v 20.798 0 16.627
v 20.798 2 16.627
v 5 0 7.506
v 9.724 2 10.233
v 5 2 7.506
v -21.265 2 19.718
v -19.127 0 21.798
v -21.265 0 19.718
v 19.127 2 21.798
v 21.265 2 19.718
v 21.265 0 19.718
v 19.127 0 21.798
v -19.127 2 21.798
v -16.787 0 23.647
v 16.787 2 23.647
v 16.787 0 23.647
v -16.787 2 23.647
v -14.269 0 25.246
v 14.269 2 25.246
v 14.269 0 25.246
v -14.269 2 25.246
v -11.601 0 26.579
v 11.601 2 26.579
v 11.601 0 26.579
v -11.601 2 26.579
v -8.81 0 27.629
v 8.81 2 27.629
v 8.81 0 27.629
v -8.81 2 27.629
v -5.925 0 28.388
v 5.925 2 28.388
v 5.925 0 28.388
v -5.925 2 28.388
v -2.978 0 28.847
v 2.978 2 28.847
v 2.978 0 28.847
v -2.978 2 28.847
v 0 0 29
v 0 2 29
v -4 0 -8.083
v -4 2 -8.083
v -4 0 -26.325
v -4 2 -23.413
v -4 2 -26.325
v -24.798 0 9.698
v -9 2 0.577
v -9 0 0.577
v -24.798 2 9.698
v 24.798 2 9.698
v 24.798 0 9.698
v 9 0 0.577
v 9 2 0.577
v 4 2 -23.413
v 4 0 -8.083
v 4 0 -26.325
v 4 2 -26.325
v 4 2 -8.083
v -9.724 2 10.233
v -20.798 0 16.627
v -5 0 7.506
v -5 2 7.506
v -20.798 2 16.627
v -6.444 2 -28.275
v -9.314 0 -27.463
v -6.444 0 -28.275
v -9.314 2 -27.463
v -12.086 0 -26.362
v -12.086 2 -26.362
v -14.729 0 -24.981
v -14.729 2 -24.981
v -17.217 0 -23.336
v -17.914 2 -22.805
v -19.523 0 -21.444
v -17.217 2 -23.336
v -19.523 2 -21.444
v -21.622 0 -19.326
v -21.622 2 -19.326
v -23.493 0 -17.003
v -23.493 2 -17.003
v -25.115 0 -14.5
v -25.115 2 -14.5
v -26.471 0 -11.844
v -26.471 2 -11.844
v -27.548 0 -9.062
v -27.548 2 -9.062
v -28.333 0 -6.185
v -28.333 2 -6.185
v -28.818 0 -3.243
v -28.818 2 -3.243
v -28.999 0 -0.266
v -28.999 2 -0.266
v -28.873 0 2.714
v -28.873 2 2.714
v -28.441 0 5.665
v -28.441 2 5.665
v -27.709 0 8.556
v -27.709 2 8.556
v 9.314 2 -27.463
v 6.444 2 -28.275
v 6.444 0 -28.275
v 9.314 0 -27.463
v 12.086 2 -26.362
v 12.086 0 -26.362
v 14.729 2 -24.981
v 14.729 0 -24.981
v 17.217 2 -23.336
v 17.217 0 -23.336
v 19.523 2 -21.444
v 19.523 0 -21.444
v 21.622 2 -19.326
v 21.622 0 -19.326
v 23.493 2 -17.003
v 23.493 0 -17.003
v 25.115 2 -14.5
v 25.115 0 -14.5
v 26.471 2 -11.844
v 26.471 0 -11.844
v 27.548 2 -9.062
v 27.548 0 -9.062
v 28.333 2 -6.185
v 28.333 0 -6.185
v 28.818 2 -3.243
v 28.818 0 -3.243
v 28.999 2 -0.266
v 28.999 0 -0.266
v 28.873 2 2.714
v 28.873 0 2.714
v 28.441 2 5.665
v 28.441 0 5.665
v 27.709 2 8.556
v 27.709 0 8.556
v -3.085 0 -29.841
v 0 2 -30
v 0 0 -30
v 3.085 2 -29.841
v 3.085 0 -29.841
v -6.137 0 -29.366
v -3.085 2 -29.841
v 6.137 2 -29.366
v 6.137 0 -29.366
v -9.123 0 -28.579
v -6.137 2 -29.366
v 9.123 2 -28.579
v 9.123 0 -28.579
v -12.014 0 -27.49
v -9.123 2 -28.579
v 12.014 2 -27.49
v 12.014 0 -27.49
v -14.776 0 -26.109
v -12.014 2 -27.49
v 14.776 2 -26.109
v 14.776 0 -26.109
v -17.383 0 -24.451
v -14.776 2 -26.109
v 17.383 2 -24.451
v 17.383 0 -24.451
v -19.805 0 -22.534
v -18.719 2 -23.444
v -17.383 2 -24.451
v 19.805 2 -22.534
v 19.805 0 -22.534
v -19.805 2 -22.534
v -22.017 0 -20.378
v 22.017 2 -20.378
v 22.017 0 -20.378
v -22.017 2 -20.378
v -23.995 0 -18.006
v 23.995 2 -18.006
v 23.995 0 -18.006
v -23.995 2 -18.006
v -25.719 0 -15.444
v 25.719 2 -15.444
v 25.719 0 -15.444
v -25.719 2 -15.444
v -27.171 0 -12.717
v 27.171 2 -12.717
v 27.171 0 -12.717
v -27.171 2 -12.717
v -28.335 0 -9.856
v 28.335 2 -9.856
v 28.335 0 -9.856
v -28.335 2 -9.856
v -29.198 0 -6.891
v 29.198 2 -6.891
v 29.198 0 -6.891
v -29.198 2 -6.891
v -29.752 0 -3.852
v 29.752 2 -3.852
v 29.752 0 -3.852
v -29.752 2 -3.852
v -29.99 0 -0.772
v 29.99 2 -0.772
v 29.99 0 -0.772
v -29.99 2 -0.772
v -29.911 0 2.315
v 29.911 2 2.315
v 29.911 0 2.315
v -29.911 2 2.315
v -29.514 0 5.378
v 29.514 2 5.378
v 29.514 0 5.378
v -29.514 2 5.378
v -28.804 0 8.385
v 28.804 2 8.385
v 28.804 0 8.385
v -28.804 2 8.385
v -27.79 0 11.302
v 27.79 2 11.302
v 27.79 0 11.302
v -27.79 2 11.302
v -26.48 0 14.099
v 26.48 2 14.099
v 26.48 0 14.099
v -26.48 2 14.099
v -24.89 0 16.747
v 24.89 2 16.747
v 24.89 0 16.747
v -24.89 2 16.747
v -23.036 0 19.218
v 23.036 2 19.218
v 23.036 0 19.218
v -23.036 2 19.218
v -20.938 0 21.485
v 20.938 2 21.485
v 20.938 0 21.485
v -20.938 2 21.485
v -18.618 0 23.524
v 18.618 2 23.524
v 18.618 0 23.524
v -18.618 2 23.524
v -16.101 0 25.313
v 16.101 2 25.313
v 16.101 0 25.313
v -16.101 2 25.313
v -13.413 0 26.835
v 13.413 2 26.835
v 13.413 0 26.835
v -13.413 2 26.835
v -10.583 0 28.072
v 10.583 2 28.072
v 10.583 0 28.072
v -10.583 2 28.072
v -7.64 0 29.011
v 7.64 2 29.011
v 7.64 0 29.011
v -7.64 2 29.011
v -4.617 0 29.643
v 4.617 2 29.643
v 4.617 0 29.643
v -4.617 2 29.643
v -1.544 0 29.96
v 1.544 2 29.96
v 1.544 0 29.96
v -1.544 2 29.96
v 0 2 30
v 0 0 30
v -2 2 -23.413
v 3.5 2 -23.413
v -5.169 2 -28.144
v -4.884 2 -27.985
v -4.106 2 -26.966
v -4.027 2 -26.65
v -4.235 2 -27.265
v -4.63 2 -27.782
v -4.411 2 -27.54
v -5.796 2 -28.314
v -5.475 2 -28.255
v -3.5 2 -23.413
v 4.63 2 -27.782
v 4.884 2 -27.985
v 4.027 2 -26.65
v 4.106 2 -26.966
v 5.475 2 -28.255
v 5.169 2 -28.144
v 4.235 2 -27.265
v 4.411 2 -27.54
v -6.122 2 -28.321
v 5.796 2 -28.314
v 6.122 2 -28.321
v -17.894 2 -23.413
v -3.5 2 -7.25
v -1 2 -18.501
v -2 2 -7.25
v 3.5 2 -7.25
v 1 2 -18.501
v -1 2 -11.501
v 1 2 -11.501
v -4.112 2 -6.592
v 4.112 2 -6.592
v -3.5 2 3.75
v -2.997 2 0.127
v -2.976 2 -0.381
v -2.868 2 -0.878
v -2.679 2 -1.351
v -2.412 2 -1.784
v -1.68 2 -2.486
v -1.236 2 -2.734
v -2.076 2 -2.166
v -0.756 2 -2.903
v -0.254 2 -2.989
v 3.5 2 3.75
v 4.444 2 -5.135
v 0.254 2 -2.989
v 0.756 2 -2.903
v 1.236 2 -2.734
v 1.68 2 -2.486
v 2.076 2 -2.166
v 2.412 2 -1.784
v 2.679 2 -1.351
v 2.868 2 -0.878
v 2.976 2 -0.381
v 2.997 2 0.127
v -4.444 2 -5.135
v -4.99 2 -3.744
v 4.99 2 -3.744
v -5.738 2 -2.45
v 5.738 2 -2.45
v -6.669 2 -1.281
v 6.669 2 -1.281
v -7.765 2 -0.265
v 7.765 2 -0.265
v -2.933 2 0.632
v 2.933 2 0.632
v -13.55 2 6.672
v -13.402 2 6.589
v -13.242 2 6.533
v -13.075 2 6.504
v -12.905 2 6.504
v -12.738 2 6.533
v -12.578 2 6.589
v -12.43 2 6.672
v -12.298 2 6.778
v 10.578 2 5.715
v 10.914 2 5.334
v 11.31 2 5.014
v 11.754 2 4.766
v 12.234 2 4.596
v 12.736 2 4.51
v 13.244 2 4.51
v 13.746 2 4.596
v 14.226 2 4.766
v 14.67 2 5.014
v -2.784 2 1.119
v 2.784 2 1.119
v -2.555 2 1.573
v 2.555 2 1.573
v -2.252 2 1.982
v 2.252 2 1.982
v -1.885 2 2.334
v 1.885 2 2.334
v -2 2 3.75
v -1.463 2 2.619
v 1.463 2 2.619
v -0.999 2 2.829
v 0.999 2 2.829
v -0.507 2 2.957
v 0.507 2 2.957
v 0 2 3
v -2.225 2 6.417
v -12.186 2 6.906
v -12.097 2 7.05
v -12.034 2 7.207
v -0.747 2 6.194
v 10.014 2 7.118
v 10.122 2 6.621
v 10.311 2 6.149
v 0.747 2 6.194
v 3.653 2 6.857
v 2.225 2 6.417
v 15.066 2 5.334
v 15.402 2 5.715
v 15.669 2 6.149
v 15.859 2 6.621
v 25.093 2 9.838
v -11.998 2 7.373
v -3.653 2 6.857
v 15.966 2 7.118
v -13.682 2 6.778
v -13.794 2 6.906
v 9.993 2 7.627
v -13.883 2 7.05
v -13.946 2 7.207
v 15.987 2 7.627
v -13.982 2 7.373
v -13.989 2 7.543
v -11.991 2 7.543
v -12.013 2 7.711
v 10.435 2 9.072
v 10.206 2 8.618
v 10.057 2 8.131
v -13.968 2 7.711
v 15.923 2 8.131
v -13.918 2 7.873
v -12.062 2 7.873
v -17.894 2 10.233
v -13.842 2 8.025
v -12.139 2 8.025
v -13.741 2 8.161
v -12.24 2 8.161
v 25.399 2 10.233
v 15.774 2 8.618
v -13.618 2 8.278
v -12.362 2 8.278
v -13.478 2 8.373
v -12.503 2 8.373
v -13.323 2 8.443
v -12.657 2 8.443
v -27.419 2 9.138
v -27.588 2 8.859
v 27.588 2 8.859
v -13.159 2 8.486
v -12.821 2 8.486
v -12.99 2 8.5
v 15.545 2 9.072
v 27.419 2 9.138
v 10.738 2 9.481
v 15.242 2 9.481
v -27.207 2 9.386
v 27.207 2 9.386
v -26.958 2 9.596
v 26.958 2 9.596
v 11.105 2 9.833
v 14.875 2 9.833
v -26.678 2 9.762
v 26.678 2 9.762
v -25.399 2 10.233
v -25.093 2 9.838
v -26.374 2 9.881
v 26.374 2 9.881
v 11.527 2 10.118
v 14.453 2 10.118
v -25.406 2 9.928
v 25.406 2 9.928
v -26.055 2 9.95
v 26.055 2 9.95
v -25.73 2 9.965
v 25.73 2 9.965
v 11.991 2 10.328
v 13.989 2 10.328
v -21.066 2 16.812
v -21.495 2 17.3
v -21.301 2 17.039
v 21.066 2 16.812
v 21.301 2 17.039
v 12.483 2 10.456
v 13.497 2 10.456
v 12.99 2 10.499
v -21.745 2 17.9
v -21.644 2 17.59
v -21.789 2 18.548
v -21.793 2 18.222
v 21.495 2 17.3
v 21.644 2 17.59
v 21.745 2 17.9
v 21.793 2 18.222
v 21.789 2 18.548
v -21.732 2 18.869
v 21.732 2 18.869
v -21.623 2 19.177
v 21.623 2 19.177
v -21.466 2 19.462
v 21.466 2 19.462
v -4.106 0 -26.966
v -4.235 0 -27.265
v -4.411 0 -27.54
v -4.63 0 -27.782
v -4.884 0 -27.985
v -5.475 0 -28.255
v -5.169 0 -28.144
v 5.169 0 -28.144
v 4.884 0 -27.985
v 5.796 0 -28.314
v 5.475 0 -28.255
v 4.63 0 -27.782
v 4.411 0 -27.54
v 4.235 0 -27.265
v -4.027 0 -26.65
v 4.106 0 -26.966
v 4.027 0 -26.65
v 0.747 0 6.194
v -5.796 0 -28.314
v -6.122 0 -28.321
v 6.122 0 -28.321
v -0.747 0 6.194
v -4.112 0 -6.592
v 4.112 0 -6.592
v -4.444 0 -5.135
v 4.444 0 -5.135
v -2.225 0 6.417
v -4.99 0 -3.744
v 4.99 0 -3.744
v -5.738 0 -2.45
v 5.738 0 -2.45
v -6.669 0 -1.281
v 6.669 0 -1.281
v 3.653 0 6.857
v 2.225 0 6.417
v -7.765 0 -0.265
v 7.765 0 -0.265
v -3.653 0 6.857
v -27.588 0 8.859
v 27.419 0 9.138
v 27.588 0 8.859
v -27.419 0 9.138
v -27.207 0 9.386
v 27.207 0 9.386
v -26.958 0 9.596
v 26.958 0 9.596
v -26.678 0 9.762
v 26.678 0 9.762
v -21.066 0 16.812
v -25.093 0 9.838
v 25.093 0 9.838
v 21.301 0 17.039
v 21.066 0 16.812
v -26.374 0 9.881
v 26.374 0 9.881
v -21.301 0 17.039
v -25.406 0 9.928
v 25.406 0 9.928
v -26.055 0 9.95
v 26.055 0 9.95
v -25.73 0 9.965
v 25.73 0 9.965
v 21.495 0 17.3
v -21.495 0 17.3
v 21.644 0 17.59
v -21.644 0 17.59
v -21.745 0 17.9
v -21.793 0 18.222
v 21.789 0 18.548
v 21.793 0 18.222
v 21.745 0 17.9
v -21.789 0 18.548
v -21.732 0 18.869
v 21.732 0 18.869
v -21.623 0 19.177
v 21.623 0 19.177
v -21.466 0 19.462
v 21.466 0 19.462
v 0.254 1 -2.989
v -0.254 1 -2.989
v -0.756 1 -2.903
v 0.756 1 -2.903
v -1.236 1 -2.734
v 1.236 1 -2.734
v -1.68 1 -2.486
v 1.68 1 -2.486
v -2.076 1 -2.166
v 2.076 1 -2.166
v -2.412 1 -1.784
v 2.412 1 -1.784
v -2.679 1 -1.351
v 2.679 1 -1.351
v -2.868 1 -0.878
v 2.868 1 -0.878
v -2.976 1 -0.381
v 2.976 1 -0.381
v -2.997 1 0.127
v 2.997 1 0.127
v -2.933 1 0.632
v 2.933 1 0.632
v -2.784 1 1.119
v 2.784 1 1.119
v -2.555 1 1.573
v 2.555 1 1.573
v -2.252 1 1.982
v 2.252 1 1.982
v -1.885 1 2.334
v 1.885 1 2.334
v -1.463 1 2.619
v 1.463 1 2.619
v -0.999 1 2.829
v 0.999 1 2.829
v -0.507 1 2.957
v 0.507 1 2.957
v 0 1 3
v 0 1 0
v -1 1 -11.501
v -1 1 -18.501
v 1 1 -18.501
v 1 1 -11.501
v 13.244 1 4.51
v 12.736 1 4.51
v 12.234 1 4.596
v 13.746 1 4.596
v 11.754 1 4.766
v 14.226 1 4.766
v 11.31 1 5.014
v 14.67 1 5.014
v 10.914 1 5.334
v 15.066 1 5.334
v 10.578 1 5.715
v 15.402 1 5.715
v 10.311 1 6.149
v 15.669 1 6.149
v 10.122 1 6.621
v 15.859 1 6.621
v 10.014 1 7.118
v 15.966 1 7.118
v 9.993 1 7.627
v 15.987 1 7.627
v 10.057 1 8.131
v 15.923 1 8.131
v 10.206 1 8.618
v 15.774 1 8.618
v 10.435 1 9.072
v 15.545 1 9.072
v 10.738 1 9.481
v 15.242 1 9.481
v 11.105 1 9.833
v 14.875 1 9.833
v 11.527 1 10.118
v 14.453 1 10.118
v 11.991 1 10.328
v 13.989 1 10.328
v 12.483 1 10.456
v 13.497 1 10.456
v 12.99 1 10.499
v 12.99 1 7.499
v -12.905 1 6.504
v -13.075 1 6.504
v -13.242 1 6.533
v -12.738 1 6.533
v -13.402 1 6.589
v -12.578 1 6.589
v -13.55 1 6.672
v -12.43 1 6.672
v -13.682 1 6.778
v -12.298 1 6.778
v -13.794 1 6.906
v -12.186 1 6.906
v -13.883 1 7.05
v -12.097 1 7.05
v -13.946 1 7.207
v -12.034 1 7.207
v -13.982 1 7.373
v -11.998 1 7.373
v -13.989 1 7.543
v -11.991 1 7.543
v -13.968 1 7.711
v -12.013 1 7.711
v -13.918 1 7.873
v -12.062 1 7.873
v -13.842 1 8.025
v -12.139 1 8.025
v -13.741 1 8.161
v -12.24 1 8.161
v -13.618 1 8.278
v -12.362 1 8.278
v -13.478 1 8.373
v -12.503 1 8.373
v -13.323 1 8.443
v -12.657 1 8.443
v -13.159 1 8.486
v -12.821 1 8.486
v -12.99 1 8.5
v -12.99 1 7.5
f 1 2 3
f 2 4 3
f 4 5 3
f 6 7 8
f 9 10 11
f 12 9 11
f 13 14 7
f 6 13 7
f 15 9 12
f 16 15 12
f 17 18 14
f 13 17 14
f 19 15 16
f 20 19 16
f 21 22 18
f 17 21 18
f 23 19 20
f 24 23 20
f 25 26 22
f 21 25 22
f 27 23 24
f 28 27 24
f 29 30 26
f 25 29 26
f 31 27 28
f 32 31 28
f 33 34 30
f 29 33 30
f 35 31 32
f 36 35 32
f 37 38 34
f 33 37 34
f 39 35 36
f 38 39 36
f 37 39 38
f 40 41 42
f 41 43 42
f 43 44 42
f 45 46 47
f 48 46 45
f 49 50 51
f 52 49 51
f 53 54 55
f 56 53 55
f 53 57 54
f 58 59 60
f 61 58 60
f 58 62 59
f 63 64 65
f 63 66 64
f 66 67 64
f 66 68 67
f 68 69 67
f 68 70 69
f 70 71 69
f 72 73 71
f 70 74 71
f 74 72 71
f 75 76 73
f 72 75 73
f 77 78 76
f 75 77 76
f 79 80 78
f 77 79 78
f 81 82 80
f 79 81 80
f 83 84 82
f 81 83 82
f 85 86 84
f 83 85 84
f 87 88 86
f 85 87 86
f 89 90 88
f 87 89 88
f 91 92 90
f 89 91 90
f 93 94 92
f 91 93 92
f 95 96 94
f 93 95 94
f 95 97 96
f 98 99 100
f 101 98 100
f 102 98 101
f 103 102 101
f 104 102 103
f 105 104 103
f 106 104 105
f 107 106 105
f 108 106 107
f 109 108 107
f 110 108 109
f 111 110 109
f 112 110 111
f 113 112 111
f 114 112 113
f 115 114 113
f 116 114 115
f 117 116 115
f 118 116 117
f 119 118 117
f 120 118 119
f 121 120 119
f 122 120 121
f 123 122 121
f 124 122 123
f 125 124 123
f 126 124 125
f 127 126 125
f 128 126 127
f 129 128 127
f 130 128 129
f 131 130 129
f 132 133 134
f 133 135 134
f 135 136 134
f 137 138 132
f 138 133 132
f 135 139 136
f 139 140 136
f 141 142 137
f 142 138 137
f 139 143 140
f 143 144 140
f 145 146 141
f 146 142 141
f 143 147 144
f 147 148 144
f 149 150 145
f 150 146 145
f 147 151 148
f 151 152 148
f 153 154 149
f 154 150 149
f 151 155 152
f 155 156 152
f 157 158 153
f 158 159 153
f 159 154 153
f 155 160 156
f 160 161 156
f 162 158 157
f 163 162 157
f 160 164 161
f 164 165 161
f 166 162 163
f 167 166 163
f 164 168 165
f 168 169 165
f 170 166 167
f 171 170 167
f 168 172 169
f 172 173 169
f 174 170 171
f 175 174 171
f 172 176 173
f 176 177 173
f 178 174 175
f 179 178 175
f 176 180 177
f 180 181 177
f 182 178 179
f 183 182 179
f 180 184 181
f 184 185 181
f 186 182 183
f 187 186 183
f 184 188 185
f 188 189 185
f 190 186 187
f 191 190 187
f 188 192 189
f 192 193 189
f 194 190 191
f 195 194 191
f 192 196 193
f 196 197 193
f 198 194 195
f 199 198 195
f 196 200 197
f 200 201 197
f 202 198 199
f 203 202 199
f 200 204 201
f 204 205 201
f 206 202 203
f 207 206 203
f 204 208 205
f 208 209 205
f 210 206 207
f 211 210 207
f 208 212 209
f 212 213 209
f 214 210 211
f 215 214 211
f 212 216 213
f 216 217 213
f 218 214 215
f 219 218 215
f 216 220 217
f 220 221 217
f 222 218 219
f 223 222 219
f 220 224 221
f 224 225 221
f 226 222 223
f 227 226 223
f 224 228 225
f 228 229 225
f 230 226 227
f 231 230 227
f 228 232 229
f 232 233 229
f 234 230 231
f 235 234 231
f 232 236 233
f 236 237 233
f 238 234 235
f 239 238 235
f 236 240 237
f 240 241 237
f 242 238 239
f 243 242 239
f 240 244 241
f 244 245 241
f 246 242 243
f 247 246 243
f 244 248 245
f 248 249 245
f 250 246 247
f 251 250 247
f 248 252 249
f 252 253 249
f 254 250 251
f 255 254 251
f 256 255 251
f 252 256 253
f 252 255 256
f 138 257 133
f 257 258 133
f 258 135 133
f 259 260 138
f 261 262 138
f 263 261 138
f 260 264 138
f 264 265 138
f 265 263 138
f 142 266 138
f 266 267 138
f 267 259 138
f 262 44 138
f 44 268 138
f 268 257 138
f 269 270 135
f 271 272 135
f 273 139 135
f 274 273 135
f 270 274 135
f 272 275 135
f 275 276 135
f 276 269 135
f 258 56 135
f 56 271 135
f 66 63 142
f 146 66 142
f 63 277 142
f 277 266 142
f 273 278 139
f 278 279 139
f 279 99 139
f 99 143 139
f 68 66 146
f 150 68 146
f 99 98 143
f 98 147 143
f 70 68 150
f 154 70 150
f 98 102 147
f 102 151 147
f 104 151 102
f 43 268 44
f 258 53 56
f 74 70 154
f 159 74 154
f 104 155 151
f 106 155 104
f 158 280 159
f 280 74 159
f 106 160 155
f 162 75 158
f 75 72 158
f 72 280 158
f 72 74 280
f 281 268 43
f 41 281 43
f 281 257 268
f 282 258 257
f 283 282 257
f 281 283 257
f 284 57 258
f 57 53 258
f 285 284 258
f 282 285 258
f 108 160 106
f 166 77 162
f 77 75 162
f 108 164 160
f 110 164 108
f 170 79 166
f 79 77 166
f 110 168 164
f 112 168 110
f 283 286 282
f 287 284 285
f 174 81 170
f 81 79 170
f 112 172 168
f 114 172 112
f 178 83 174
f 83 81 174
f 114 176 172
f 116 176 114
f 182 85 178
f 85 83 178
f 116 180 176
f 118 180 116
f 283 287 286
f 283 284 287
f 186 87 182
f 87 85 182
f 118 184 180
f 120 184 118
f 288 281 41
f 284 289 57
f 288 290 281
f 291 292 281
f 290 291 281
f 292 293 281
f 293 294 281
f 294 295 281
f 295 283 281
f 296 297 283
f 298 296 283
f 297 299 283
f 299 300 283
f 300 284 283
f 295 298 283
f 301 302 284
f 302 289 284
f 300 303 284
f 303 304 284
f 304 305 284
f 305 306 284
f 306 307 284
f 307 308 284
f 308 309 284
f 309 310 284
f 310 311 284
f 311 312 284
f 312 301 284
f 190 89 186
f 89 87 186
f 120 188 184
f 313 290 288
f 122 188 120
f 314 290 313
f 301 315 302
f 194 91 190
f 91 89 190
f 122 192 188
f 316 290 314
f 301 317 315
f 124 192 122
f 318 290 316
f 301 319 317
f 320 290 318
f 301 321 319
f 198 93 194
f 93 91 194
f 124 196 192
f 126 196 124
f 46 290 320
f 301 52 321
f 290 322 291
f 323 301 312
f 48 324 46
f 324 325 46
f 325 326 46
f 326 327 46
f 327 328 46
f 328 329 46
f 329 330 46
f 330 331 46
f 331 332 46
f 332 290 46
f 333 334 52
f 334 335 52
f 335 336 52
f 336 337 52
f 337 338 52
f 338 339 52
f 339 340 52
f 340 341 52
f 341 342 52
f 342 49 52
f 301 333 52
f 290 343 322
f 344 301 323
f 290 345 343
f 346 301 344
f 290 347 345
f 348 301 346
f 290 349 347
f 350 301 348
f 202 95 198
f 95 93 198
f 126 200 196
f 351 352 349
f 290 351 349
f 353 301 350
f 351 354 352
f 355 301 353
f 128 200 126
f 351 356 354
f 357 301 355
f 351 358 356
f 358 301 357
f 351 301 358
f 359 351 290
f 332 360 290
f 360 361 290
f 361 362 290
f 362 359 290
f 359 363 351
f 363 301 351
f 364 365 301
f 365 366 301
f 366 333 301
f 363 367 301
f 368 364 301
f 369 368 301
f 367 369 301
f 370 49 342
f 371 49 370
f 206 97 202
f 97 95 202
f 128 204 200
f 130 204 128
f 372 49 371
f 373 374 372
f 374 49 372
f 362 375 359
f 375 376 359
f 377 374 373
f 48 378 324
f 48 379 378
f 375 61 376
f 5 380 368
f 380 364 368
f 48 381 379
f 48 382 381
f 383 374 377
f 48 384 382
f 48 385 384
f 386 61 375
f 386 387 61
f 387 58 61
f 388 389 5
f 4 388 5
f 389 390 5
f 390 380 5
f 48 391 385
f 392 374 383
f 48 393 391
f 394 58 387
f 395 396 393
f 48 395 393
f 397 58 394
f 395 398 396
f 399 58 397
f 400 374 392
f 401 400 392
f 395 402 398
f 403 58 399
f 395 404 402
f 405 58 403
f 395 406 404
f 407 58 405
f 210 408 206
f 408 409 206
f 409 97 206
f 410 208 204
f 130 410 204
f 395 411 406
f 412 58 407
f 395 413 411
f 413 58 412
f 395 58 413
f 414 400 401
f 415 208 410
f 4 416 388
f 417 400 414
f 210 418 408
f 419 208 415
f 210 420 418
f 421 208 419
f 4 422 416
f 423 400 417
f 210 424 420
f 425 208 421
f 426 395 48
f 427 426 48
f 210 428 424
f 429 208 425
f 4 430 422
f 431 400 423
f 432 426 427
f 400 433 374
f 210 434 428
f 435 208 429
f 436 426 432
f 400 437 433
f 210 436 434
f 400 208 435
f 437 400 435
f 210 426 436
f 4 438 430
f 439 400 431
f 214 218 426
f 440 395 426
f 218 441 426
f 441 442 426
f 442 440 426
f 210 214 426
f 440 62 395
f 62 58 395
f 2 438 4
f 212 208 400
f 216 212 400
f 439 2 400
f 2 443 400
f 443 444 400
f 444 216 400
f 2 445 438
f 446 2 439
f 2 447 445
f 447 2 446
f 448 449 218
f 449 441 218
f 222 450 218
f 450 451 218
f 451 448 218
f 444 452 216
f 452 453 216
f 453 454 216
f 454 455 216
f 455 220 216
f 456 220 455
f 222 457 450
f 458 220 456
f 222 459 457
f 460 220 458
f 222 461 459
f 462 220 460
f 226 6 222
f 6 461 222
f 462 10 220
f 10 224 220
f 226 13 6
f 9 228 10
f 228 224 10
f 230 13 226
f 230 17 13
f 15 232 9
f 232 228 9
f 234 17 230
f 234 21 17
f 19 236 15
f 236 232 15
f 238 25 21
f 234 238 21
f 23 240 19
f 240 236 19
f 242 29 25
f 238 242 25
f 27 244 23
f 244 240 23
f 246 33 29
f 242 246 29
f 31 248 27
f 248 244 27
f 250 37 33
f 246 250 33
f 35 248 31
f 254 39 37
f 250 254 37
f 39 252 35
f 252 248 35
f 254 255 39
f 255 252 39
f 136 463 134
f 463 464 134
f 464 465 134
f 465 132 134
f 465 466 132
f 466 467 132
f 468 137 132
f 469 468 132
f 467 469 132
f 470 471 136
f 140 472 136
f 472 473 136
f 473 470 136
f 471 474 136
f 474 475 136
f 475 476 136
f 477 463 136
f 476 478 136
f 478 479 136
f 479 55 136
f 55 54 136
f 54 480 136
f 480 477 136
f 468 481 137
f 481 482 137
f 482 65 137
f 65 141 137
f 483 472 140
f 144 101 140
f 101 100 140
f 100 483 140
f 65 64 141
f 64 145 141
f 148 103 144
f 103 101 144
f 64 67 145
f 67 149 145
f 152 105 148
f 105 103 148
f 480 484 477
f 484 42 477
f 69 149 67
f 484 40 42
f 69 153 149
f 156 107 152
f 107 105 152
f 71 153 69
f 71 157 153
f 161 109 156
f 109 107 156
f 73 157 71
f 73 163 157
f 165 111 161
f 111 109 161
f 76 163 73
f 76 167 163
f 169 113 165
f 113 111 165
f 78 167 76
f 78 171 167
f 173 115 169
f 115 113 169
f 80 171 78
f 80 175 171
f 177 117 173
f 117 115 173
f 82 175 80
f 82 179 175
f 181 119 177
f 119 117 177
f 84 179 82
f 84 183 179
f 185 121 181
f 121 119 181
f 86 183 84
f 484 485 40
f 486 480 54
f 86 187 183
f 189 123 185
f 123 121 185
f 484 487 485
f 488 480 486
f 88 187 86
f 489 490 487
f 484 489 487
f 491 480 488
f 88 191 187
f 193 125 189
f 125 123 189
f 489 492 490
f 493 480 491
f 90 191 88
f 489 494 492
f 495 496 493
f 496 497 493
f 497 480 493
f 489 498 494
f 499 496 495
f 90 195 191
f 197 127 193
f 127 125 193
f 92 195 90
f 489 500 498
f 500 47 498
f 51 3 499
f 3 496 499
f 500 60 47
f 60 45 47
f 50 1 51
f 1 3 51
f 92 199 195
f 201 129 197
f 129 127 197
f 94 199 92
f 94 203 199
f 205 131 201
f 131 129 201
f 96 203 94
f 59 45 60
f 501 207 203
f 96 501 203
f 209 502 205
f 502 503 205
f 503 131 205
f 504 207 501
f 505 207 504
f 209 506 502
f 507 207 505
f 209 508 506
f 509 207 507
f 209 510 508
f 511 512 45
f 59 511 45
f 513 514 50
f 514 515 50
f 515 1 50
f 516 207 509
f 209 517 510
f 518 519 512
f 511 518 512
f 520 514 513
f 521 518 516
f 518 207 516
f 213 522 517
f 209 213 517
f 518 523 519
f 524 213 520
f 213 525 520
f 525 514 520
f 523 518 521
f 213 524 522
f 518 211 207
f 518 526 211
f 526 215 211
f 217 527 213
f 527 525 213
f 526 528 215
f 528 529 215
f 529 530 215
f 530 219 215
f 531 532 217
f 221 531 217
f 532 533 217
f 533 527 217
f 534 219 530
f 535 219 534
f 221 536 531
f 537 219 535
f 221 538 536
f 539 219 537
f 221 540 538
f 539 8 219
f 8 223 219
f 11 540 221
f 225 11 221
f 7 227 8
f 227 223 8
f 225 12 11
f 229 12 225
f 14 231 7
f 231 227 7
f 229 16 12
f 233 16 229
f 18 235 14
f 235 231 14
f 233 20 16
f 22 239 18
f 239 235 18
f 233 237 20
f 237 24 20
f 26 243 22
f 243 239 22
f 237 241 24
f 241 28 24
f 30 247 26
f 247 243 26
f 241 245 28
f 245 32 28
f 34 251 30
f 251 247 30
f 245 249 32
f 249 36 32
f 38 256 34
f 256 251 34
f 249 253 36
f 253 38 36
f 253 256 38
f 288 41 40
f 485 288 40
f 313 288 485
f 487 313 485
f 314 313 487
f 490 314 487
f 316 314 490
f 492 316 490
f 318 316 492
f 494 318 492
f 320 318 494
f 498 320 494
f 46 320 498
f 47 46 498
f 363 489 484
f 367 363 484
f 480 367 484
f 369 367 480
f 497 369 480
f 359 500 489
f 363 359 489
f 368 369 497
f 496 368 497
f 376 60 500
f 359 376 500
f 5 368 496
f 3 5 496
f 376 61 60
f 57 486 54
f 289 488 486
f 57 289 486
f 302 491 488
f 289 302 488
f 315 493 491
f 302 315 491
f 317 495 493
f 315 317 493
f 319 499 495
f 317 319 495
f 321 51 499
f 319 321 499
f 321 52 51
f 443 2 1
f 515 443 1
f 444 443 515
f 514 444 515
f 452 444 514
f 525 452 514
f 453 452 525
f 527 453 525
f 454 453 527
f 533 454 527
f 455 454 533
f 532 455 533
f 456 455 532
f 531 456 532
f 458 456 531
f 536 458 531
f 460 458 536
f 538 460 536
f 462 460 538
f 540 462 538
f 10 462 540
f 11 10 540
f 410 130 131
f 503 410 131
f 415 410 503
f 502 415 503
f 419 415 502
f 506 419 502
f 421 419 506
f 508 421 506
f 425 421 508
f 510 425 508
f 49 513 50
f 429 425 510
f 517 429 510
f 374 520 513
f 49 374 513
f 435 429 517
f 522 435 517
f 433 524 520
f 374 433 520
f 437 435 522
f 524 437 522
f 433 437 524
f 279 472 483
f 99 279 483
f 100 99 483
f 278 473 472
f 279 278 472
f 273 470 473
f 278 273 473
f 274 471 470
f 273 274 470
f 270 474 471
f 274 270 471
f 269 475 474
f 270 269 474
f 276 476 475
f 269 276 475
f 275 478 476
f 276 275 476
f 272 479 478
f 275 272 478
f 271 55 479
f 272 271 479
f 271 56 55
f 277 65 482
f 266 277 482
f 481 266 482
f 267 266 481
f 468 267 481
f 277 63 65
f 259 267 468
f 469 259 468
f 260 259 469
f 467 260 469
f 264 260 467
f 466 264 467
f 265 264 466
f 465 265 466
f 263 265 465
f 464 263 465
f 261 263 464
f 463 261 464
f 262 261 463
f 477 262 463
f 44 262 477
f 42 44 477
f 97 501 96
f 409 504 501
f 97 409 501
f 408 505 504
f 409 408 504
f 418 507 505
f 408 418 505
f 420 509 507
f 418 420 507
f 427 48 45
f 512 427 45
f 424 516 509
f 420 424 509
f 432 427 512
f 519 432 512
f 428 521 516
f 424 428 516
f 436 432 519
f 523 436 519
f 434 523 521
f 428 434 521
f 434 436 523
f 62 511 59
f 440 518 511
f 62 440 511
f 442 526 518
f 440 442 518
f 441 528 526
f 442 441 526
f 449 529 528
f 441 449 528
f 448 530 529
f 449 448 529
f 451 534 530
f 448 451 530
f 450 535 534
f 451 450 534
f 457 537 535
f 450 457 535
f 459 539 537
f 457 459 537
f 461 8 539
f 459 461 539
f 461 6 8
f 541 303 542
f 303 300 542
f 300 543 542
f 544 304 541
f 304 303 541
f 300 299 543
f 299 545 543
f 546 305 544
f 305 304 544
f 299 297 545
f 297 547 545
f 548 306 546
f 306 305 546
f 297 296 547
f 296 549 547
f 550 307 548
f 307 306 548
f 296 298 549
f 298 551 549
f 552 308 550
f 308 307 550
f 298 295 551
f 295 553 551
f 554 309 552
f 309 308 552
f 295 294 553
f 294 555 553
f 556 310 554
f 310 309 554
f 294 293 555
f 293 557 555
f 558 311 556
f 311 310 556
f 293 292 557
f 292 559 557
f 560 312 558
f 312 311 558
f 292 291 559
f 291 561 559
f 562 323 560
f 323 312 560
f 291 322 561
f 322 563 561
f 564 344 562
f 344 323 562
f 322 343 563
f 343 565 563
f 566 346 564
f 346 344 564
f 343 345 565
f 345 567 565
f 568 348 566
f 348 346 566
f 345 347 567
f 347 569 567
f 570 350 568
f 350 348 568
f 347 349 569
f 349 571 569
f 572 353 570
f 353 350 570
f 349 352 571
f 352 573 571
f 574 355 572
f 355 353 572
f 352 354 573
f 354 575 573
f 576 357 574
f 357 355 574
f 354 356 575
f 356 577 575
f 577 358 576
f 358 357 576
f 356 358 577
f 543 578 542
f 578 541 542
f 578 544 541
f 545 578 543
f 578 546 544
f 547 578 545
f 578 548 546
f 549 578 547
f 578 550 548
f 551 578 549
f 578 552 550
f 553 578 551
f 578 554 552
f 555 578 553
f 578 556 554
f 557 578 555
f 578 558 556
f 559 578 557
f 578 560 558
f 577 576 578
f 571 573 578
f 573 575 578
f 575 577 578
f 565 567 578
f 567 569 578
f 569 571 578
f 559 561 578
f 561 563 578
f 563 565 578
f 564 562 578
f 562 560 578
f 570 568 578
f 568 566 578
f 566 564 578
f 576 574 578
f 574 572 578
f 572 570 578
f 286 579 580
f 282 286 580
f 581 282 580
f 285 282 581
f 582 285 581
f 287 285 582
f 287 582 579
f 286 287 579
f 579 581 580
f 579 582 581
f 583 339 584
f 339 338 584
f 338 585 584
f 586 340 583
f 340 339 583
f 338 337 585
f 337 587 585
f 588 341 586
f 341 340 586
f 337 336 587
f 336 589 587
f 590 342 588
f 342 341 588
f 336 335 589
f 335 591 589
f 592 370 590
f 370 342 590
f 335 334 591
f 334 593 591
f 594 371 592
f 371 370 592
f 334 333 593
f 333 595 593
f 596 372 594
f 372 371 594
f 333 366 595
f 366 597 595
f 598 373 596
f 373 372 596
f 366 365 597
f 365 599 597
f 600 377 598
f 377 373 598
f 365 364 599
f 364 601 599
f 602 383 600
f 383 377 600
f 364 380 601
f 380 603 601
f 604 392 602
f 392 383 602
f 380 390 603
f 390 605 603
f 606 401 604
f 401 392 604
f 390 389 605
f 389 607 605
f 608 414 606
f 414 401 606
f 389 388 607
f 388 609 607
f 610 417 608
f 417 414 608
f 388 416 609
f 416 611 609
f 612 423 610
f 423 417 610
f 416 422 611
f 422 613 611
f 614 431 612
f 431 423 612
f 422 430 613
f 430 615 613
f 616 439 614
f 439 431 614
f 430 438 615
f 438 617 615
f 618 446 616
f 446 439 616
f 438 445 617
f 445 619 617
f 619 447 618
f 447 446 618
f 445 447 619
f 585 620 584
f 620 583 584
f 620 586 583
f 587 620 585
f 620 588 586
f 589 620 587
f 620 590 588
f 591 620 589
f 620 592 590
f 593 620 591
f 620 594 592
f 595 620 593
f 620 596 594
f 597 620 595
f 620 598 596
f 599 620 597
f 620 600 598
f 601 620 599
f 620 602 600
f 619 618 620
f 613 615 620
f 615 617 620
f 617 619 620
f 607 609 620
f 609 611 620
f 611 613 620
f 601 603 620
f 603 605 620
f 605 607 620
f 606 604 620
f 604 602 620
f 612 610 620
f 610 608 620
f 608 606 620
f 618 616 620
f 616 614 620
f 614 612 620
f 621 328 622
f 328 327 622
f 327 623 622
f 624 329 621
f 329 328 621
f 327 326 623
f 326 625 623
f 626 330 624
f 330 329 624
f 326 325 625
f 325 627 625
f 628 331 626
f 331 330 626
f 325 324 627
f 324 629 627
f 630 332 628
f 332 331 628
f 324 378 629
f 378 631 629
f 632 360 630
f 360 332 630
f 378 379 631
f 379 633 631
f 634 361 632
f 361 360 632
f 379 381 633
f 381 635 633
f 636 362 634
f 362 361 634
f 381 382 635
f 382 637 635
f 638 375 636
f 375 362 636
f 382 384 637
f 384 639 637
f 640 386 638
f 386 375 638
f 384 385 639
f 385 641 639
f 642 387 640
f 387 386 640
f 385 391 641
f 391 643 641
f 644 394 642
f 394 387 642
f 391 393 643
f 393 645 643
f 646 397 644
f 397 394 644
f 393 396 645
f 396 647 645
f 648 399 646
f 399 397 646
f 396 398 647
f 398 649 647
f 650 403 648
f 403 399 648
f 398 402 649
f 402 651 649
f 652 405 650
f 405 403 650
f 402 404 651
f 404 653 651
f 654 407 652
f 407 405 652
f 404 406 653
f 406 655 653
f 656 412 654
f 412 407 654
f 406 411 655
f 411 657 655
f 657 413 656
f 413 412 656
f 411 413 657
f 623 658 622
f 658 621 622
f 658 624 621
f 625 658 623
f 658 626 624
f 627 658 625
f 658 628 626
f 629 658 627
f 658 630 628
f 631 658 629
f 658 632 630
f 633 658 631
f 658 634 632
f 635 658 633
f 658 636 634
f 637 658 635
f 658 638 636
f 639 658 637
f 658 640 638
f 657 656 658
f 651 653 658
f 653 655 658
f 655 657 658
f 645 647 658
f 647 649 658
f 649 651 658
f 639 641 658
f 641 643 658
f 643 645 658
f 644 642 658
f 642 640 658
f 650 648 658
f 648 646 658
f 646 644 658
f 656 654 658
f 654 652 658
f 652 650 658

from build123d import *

# Parameters (mm, degrees)
SKETCH1_R           = 30
BOSS_EXTRUDE1_DEPTH = 2
FILLET1_R           = 10
FILLET2_R           = 2
SKETCH2_R           = 3
CUT_EXTRUDE1_DEPTH  = 1
SKETCH3_R           = 1
SKETCH3_R_2         = 3
SKETCH3_W           = 2
SKETCH3_H           = 7
CUT_EXTRUDE2_DEPTH  = 1


with BuildPart() as part:
    # Sketch1 → Boss-Extrude1 (new body)
    with BuildSketch(Plane(origin=(0, 0, 0), x_dir=(1, 0, 0), z_dir=(0, 1, 0))):
        with Locations(Location((0, 0, 0), (0, 0, 270))):
            Circle(SKETCH1_R)
        with BuildLine():
            Line((-22.874685928, -17.825508231), (0, -4.618802154))
            Line((0, -4.618802154), (22.874685928, -17.825508231))
            ThreePointArc((22.874685928, -17.825508231), (0, -29), (-22.874685928, -17.825508231))
        make_face(mode=Mode.SUBTRACT)
        with BuildLine():
            Line((26.874685928, -10.897305001), (4, 2.309401077))
            Line((4, 2.309401077), (4, 28.722813233))
            ThreePointArc((4, 28.722813233), (25.11473671, 14.5), (26.874685928, -10.897305001))
        make_face(mode=Mode.SUBTRACT)
        with BuildLine():
            Line((-4, 28.722813233), (-4, 2.309401077))
            Line((-4, 2.309401077), (-26.874685928, -10.897305001))
            ThreePointArc((-26.874685928, -10.897305001), (-25.11473671, 14.5), (-4, 28.722813233))
        make_face(mode=Mode.SUBTRACT)
    extrude(amount=BOSS_EXTRUDE1_DEPTH)

    # Fillet1
    fillet1_edges = [part.edges().sort_by_distance(p)[0] for p in [
        (0, 1, 4.618802154),
        (-4, 1, -2.309401077),
        (4, 1, -2.309401077),
    ]]
    fillet(fillet1_edges, radius=FILLET1_R)

    # Fillet2
    fillet2_edges = [part.edges().sort_by_distance(p)[0] for p in [
        (-22.874685928, 1, 17.825508231),
        (22.874685928, 1, 17.825508231),
        (-4, 1, -28.722813233),
        (-26.874685928, 1, 10.897305001),
        (26.874685928, 1, 10.897305001),
        (4, 1, -28.722813233),
    ]]
    fillet(fillet2_edges, radius=FILLET2_R)

    # Sketch2 → Cut-Extrude1 (cut)
    with BuildSketch(Plane(origin=(0, 2, 0), x_dir=(1, 0, 0), z_dir=(0, 1, 0))):
        with Locations(Location((0, 0, 0), (0, 0, 270))):
            Circle(SKETCH2_R)
    extrude(amount=-CUT_EXTRUDE1_DEPTH, mode=Mode.SUBTRACT)

    # Sketch3 → Cut-Extrude2 (cut)
    with BuildSketch(Plane(origin=(0, 2, 0), x_dir=(1, 0, 0), z_dir=(0, 1, 0))):
        with Locations(Location((-12.990200407, -7.500312817, 0), (0, 0, 270))):
            Circle(SKETCH3_R)
        with Locations(Location((12.990019825, -7.499374327, 0), (0, 0, 270))):
            Circle(SKETCH3_R_2)
        with Locations((-0.000361232, 15.000625673)):
            Rectangle(SKETCH3_W, SKETCH3_H)
    extrude(amount=-CUT_EXTRUDE2_DEPTH, mode=Mode.SUBTRACT)


solid = part.part
